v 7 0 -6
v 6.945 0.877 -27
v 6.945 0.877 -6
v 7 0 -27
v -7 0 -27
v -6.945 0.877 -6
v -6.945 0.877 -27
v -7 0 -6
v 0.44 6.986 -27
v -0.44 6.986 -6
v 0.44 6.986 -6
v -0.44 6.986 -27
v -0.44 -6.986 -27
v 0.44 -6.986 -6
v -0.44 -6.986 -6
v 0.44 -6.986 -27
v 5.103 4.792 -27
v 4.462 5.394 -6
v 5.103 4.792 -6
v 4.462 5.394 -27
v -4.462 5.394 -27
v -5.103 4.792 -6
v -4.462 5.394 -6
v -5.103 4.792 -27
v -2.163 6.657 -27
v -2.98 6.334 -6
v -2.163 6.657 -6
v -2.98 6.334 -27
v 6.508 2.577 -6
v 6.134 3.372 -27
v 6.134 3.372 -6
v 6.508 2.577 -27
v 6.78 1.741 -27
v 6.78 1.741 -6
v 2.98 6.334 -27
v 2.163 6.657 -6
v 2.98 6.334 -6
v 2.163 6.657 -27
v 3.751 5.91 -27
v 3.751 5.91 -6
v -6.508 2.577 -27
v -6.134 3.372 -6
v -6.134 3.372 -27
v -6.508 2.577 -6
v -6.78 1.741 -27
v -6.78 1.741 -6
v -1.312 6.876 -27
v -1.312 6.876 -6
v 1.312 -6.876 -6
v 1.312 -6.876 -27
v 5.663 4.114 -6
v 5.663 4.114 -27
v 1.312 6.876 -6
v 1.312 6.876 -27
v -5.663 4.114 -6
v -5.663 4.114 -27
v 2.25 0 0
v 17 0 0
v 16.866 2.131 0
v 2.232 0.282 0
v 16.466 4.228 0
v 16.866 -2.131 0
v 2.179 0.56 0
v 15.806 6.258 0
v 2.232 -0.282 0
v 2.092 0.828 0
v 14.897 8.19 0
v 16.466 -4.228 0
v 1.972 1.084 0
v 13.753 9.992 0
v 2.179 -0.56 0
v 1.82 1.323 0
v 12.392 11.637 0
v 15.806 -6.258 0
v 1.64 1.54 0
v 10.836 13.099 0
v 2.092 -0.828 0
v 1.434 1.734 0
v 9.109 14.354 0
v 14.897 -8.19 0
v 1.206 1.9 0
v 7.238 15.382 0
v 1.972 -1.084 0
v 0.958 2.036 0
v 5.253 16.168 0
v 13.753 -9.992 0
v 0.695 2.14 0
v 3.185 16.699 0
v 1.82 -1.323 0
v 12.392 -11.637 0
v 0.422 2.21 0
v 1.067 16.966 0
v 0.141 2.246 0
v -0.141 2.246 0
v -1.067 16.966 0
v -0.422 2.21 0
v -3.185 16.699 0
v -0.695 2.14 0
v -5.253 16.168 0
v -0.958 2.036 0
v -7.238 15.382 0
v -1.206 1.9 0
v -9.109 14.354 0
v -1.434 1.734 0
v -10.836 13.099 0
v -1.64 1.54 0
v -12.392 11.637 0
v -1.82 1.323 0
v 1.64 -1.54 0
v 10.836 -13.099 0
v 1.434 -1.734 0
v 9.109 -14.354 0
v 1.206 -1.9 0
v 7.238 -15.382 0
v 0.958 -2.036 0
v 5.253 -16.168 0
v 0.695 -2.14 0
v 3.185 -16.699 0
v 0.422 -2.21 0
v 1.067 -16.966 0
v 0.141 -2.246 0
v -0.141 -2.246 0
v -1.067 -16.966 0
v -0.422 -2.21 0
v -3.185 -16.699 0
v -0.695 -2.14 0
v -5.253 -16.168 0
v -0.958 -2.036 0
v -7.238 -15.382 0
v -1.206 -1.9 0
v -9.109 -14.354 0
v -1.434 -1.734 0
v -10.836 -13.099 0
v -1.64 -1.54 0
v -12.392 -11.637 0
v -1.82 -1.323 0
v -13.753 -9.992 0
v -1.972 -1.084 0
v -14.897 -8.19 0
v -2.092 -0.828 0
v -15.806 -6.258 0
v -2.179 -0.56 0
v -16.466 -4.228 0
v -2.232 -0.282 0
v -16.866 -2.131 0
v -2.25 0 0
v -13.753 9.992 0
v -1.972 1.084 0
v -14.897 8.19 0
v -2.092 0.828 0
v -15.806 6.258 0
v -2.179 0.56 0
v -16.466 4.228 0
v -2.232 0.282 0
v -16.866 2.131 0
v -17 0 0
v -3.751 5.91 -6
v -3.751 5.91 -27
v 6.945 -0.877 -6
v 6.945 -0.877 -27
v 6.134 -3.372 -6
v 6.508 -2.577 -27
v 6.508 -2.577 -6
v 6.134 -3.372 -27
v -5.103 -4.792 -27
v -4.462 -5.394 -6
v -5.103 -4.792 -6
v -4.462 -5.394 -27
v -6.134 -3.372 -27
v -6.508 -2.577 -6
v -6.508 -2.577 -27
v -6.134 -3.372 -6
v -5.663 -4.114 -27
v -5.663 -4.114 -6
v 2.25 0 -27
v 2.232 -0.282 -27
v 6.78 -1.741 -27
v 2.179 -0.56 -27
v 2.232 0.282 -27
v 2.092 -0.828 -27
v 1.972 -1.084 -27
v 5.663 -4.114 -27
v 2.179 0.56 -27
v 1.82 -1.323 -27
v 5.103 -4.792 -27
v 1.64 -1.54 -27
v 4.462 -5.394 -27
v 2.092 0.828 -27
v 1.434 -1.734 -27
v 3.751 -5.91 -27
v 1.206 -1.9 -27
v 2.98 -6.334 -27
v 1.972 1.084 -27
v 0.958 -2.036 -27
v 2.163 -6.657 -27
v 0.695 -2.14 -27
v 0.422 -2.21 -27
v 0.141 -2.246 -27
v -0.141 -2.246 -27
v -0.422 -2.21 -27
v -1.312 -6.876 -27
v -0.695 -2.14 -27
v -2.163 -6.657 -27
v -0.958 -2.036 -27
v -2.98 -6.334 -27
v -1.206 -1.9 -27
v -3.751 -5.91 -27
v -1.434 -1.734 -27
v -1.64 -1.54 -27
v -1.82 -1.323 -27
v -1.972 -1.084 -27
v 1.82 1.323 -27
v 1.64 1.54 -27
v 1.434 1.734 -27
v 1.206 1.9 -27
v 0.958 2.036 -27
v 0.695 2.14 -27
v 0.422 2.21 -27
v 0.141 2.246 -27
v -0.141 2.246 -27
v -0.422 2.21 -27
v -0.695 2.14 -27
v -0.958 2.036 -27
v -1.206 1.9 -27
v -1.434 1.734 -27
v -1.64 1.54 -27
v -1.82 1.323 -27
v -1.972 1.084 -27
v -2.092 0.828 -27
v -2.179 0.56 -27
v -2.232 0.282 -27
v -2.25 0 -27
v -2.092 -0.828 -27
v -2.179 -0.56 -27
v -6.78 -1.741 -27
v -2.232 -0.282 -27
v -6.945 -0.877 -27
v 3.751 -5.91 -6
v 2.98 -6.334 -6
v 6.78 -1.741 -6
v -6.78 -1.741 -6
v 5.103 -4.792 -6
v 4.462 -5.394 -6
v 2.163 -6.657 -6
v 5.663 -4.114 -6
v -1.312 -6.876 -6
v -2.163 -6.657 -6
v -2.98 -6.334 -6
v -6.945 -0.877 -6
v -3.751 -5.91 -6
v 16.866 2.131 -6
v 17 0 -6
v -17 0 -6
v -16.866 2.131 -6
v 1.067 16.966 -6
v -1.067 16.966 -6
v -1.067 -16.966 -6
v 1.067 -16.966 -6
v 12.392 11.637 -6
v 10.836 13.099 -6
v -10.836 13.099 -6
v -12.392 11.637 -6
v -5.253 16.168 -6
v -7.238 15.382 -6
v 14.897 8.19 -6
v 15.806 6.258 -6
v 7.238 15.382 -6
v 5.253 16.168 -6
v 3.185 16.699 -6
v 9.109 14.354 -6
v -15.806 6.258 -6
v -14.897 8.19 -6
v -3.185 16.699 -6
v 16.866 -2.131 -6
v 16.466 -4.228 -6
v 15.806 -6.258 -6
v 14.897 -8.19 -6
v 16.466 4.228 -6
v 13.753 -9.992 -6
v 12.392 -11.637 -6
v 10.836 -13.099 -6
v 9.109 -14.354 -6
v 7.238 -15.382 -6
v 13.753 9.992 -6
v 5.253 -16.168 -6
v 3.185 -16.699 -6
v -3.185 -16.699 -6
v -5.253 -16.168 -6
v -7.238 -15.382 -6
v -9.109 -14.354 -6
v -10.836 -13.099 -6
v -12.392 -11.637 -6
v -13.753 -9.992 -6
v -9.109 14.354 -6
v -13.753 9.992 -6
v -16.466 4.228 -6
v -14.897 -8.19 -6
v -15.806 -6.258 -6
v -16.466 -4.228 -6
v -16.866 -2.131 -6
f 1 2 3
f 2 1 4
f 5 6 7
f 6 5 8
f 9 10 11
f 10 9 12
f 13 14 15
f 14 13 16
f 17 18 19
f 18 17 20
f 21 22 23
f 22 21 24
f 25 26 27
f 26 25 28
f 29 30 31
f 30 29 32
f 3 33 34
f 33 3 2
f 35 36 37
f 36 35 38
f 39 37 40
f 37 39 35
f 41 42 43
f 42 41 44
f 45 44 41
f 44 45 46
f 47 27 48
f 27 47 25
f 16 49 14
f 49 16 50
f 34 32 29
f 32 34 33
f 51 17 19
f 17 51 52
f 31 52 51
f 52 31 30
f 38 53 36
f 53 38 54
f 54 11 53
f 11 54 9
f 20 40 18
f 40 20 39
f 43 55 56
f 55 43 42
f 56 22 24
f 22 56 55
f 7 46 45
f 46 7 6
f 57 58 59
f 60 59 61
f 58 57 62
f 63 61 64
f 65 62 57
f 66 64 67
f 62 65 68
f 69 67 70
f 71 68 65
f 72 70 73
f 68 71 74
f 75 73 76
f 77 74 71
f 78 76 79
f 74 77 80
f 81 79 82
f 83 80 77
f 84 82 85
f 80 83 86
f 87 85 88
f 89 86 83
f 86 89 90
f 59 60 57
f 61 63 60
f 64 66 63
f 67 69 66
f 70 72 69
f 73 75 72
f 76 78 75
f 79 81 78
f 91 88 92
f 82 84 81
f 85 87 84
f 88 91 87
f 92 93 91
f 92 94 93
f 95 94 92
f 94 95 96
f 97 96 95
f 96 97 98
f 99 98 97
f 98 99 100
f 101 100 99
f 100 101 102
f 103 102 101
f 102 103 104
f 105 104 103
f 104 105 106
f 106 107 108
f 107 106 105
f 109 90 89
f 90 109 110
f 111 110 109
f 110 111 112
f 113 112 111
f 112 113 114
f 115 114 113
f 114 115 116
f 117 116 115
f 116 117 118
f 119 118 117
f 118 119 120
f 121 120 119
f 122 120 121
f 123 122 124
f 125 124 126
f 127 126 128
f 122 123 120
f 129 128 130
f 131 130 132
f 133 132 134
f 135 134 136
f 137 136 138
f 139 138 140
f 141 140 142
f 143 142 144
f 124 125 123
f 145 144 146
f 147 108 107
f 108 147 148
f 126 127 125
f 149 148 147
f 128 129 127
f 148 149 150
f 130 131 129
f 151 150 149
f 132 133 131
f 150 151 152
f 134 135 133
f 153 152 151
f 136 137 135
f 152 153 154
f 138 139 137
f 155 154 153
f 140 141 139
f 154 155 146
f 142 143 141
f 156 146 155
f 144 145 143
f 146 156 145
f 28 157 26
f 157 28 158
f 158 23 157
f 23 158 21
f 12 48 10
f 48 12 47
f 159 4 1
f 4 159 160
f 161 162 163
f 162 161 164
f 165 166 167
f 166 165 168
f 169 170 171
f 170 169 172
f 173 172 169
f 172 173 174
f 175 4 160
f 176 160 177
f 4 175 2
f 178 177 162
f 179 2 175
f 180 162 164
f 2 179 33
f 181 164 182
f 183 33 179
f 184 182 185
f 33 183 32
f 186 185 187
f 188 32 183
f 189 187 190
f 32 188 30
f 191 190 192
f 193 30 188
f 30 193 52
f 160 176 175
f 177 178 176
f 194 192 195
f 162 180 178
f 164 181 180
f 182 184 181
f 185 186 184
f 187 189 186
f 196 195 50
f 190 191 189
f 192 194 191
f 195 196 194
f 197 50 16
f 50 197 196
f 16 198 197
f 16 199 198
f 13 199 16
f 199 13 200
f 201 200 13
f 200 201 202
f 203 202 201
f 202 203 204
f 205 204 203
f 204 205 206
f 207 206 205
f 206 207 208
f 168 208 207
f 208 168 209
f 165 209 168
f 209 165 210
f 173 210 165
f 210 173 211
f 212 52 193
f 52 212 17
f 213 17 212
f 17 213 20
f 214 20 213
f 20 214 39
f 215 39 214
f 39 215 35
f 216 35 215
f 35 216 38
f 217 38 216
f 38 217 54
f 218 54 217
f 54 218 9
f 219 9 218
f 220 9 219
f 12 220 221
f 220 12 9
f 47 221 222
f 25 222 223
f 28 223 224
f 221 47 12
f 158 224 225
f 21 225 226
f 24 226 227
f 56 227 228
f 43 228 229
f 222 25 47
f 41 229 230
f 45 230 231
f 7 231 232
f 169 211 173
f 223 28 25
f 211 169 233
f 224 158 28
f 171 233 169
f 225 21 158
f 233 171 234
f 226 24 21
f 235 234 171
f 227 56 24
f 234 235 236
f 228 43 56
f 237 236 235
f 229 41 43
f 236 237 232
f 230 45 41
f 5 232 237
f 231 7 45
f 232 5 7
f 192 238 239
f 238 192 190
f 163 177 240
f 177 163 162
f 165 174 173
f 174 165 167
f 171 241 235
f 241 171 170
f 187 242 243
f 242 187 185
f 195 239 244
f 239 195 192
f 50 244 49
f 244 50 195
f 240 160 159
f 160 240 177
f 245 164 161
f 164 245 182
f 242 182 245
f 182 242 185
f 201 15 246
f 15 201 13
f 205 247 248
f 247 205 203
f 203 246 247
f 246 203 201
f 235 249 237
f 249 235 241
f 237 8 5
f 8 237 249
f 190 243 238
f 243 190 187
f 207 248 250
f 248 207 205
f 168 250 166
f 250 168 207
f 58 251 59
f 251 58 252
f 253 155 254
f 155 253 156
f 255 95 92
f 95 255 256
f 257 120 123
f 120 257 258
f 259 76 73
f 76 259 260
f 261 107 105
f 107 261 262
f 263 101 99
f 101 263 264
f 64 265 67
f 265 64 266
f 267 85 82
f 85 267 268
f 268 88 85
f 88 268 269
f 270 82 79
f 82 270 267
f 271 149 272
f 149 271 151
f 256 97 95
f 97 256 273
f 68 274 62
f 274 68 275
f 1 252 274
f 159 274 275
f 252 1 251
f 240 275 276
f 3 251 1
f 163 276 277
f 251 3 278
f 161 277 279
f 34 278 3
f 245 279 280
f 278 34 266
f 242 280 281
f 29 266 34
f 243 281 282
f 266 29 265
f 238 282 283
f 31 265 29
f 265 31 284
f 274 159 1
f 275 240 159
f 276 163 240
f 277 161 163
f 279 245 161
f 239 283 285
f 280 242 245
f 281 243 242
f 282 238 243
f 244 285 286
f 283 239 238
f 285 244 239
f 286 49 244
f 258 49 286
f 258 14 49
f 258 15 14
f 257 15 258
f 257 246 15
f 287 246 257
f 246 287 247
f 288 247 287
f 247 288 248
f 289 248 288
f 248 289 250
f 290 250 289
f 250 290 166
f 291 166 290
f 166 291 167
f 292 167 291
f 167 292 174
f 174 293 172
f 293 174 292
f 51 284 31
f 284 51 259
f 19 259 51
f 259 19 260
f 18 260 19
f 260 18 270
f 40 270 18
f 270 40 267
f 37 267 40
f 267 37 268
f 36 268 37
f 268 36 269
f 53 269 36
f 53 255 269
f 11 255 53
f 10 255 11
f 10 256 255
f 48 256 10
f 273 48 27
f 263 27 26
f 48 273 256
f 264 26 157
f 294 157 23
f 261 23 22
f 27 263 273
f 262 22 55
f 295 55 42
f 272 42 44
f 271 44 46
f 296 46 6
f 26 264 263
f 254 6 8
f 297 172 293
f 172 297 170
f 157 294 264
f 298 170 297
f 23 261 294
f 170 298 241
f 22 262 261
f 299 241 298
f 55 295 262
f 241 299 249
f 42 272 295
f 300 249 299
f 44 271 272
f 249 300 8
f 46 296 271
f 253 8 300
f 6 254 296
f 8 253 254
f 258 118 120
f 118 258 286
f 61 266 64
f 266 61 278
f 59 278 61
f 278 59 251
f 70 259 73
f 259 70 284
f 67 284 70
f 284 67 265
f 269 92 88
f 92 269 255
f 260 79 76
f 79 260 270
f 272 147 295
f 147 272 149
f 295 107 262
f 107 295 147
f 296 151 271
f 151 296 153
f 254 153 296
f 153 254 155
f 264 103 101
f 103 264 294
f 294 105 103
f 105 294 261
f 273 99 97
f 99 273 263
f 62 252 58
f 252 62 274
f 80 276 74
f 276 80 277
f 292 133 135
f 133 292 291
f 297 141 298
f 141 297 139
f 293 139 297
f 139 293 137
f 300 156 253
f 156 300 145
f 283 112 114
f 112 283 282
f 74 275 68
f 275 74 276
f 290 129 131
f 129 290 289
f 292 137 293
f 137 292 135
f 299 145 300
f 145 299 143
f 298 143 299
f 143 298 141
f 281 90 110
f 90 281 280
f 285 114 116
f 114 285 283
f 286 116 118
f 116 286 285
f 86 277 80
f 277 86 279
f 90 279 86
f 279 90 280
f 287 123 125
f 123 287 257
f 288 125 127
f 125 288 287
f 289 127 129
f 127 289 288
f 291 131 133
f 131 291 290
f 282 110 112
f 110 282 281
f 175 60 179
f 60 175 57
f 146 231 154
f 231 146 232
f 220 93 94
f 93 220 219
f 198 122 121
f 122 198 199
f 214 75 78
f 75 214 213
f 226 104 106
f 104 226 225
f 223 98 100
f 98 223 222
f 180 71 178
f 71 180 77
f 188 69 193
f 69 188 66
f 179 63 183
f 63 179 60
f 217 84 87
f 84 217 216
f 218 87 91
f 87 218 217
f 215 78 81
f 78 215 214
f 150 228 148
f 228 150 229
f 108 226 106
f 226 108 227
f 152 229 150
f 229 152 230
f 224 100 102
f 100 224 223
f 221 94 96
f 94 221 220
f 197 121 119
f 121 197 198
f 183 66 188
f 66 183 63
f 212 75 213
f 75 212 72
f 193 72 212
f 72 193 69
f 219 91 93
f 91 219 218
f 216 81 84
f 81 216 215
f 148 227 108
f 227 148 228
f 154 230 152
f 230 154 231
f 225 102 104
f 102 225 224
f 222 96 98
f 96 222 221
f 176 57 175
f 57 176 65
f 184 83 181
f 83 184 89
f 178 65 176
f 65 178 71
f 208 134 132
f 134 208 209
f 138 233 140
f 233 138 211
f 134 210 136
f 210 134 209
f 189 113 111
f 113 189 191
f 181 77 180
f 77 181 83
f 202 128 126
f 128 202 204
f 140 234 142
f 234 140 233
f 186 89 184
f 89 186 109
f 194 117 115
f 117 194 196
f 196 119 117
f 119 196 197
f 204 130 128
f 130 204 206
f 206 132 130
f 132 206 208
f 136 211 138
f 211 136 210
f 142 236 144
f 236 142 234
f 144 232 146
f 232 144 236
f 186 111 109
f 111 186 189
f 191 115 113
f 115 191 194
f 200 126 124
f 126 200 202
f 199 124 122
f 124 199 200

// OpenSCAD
$fn = 50;


difference() {
	union() {
		translate(v = [0, 0, -27.0000000000]) {
			cylinder(h = 27, r = 7.0000000000);
		}
		translate(v = [0, 0, -6.0000000000]) {
			cylinder(h = 6, r = 17.0000000000);
		}
	}
	union() {
		#translate(v = [0, 0, -27]) {
			cylinder(h = 27, r = 2.2500000000);
		}
	}
}
